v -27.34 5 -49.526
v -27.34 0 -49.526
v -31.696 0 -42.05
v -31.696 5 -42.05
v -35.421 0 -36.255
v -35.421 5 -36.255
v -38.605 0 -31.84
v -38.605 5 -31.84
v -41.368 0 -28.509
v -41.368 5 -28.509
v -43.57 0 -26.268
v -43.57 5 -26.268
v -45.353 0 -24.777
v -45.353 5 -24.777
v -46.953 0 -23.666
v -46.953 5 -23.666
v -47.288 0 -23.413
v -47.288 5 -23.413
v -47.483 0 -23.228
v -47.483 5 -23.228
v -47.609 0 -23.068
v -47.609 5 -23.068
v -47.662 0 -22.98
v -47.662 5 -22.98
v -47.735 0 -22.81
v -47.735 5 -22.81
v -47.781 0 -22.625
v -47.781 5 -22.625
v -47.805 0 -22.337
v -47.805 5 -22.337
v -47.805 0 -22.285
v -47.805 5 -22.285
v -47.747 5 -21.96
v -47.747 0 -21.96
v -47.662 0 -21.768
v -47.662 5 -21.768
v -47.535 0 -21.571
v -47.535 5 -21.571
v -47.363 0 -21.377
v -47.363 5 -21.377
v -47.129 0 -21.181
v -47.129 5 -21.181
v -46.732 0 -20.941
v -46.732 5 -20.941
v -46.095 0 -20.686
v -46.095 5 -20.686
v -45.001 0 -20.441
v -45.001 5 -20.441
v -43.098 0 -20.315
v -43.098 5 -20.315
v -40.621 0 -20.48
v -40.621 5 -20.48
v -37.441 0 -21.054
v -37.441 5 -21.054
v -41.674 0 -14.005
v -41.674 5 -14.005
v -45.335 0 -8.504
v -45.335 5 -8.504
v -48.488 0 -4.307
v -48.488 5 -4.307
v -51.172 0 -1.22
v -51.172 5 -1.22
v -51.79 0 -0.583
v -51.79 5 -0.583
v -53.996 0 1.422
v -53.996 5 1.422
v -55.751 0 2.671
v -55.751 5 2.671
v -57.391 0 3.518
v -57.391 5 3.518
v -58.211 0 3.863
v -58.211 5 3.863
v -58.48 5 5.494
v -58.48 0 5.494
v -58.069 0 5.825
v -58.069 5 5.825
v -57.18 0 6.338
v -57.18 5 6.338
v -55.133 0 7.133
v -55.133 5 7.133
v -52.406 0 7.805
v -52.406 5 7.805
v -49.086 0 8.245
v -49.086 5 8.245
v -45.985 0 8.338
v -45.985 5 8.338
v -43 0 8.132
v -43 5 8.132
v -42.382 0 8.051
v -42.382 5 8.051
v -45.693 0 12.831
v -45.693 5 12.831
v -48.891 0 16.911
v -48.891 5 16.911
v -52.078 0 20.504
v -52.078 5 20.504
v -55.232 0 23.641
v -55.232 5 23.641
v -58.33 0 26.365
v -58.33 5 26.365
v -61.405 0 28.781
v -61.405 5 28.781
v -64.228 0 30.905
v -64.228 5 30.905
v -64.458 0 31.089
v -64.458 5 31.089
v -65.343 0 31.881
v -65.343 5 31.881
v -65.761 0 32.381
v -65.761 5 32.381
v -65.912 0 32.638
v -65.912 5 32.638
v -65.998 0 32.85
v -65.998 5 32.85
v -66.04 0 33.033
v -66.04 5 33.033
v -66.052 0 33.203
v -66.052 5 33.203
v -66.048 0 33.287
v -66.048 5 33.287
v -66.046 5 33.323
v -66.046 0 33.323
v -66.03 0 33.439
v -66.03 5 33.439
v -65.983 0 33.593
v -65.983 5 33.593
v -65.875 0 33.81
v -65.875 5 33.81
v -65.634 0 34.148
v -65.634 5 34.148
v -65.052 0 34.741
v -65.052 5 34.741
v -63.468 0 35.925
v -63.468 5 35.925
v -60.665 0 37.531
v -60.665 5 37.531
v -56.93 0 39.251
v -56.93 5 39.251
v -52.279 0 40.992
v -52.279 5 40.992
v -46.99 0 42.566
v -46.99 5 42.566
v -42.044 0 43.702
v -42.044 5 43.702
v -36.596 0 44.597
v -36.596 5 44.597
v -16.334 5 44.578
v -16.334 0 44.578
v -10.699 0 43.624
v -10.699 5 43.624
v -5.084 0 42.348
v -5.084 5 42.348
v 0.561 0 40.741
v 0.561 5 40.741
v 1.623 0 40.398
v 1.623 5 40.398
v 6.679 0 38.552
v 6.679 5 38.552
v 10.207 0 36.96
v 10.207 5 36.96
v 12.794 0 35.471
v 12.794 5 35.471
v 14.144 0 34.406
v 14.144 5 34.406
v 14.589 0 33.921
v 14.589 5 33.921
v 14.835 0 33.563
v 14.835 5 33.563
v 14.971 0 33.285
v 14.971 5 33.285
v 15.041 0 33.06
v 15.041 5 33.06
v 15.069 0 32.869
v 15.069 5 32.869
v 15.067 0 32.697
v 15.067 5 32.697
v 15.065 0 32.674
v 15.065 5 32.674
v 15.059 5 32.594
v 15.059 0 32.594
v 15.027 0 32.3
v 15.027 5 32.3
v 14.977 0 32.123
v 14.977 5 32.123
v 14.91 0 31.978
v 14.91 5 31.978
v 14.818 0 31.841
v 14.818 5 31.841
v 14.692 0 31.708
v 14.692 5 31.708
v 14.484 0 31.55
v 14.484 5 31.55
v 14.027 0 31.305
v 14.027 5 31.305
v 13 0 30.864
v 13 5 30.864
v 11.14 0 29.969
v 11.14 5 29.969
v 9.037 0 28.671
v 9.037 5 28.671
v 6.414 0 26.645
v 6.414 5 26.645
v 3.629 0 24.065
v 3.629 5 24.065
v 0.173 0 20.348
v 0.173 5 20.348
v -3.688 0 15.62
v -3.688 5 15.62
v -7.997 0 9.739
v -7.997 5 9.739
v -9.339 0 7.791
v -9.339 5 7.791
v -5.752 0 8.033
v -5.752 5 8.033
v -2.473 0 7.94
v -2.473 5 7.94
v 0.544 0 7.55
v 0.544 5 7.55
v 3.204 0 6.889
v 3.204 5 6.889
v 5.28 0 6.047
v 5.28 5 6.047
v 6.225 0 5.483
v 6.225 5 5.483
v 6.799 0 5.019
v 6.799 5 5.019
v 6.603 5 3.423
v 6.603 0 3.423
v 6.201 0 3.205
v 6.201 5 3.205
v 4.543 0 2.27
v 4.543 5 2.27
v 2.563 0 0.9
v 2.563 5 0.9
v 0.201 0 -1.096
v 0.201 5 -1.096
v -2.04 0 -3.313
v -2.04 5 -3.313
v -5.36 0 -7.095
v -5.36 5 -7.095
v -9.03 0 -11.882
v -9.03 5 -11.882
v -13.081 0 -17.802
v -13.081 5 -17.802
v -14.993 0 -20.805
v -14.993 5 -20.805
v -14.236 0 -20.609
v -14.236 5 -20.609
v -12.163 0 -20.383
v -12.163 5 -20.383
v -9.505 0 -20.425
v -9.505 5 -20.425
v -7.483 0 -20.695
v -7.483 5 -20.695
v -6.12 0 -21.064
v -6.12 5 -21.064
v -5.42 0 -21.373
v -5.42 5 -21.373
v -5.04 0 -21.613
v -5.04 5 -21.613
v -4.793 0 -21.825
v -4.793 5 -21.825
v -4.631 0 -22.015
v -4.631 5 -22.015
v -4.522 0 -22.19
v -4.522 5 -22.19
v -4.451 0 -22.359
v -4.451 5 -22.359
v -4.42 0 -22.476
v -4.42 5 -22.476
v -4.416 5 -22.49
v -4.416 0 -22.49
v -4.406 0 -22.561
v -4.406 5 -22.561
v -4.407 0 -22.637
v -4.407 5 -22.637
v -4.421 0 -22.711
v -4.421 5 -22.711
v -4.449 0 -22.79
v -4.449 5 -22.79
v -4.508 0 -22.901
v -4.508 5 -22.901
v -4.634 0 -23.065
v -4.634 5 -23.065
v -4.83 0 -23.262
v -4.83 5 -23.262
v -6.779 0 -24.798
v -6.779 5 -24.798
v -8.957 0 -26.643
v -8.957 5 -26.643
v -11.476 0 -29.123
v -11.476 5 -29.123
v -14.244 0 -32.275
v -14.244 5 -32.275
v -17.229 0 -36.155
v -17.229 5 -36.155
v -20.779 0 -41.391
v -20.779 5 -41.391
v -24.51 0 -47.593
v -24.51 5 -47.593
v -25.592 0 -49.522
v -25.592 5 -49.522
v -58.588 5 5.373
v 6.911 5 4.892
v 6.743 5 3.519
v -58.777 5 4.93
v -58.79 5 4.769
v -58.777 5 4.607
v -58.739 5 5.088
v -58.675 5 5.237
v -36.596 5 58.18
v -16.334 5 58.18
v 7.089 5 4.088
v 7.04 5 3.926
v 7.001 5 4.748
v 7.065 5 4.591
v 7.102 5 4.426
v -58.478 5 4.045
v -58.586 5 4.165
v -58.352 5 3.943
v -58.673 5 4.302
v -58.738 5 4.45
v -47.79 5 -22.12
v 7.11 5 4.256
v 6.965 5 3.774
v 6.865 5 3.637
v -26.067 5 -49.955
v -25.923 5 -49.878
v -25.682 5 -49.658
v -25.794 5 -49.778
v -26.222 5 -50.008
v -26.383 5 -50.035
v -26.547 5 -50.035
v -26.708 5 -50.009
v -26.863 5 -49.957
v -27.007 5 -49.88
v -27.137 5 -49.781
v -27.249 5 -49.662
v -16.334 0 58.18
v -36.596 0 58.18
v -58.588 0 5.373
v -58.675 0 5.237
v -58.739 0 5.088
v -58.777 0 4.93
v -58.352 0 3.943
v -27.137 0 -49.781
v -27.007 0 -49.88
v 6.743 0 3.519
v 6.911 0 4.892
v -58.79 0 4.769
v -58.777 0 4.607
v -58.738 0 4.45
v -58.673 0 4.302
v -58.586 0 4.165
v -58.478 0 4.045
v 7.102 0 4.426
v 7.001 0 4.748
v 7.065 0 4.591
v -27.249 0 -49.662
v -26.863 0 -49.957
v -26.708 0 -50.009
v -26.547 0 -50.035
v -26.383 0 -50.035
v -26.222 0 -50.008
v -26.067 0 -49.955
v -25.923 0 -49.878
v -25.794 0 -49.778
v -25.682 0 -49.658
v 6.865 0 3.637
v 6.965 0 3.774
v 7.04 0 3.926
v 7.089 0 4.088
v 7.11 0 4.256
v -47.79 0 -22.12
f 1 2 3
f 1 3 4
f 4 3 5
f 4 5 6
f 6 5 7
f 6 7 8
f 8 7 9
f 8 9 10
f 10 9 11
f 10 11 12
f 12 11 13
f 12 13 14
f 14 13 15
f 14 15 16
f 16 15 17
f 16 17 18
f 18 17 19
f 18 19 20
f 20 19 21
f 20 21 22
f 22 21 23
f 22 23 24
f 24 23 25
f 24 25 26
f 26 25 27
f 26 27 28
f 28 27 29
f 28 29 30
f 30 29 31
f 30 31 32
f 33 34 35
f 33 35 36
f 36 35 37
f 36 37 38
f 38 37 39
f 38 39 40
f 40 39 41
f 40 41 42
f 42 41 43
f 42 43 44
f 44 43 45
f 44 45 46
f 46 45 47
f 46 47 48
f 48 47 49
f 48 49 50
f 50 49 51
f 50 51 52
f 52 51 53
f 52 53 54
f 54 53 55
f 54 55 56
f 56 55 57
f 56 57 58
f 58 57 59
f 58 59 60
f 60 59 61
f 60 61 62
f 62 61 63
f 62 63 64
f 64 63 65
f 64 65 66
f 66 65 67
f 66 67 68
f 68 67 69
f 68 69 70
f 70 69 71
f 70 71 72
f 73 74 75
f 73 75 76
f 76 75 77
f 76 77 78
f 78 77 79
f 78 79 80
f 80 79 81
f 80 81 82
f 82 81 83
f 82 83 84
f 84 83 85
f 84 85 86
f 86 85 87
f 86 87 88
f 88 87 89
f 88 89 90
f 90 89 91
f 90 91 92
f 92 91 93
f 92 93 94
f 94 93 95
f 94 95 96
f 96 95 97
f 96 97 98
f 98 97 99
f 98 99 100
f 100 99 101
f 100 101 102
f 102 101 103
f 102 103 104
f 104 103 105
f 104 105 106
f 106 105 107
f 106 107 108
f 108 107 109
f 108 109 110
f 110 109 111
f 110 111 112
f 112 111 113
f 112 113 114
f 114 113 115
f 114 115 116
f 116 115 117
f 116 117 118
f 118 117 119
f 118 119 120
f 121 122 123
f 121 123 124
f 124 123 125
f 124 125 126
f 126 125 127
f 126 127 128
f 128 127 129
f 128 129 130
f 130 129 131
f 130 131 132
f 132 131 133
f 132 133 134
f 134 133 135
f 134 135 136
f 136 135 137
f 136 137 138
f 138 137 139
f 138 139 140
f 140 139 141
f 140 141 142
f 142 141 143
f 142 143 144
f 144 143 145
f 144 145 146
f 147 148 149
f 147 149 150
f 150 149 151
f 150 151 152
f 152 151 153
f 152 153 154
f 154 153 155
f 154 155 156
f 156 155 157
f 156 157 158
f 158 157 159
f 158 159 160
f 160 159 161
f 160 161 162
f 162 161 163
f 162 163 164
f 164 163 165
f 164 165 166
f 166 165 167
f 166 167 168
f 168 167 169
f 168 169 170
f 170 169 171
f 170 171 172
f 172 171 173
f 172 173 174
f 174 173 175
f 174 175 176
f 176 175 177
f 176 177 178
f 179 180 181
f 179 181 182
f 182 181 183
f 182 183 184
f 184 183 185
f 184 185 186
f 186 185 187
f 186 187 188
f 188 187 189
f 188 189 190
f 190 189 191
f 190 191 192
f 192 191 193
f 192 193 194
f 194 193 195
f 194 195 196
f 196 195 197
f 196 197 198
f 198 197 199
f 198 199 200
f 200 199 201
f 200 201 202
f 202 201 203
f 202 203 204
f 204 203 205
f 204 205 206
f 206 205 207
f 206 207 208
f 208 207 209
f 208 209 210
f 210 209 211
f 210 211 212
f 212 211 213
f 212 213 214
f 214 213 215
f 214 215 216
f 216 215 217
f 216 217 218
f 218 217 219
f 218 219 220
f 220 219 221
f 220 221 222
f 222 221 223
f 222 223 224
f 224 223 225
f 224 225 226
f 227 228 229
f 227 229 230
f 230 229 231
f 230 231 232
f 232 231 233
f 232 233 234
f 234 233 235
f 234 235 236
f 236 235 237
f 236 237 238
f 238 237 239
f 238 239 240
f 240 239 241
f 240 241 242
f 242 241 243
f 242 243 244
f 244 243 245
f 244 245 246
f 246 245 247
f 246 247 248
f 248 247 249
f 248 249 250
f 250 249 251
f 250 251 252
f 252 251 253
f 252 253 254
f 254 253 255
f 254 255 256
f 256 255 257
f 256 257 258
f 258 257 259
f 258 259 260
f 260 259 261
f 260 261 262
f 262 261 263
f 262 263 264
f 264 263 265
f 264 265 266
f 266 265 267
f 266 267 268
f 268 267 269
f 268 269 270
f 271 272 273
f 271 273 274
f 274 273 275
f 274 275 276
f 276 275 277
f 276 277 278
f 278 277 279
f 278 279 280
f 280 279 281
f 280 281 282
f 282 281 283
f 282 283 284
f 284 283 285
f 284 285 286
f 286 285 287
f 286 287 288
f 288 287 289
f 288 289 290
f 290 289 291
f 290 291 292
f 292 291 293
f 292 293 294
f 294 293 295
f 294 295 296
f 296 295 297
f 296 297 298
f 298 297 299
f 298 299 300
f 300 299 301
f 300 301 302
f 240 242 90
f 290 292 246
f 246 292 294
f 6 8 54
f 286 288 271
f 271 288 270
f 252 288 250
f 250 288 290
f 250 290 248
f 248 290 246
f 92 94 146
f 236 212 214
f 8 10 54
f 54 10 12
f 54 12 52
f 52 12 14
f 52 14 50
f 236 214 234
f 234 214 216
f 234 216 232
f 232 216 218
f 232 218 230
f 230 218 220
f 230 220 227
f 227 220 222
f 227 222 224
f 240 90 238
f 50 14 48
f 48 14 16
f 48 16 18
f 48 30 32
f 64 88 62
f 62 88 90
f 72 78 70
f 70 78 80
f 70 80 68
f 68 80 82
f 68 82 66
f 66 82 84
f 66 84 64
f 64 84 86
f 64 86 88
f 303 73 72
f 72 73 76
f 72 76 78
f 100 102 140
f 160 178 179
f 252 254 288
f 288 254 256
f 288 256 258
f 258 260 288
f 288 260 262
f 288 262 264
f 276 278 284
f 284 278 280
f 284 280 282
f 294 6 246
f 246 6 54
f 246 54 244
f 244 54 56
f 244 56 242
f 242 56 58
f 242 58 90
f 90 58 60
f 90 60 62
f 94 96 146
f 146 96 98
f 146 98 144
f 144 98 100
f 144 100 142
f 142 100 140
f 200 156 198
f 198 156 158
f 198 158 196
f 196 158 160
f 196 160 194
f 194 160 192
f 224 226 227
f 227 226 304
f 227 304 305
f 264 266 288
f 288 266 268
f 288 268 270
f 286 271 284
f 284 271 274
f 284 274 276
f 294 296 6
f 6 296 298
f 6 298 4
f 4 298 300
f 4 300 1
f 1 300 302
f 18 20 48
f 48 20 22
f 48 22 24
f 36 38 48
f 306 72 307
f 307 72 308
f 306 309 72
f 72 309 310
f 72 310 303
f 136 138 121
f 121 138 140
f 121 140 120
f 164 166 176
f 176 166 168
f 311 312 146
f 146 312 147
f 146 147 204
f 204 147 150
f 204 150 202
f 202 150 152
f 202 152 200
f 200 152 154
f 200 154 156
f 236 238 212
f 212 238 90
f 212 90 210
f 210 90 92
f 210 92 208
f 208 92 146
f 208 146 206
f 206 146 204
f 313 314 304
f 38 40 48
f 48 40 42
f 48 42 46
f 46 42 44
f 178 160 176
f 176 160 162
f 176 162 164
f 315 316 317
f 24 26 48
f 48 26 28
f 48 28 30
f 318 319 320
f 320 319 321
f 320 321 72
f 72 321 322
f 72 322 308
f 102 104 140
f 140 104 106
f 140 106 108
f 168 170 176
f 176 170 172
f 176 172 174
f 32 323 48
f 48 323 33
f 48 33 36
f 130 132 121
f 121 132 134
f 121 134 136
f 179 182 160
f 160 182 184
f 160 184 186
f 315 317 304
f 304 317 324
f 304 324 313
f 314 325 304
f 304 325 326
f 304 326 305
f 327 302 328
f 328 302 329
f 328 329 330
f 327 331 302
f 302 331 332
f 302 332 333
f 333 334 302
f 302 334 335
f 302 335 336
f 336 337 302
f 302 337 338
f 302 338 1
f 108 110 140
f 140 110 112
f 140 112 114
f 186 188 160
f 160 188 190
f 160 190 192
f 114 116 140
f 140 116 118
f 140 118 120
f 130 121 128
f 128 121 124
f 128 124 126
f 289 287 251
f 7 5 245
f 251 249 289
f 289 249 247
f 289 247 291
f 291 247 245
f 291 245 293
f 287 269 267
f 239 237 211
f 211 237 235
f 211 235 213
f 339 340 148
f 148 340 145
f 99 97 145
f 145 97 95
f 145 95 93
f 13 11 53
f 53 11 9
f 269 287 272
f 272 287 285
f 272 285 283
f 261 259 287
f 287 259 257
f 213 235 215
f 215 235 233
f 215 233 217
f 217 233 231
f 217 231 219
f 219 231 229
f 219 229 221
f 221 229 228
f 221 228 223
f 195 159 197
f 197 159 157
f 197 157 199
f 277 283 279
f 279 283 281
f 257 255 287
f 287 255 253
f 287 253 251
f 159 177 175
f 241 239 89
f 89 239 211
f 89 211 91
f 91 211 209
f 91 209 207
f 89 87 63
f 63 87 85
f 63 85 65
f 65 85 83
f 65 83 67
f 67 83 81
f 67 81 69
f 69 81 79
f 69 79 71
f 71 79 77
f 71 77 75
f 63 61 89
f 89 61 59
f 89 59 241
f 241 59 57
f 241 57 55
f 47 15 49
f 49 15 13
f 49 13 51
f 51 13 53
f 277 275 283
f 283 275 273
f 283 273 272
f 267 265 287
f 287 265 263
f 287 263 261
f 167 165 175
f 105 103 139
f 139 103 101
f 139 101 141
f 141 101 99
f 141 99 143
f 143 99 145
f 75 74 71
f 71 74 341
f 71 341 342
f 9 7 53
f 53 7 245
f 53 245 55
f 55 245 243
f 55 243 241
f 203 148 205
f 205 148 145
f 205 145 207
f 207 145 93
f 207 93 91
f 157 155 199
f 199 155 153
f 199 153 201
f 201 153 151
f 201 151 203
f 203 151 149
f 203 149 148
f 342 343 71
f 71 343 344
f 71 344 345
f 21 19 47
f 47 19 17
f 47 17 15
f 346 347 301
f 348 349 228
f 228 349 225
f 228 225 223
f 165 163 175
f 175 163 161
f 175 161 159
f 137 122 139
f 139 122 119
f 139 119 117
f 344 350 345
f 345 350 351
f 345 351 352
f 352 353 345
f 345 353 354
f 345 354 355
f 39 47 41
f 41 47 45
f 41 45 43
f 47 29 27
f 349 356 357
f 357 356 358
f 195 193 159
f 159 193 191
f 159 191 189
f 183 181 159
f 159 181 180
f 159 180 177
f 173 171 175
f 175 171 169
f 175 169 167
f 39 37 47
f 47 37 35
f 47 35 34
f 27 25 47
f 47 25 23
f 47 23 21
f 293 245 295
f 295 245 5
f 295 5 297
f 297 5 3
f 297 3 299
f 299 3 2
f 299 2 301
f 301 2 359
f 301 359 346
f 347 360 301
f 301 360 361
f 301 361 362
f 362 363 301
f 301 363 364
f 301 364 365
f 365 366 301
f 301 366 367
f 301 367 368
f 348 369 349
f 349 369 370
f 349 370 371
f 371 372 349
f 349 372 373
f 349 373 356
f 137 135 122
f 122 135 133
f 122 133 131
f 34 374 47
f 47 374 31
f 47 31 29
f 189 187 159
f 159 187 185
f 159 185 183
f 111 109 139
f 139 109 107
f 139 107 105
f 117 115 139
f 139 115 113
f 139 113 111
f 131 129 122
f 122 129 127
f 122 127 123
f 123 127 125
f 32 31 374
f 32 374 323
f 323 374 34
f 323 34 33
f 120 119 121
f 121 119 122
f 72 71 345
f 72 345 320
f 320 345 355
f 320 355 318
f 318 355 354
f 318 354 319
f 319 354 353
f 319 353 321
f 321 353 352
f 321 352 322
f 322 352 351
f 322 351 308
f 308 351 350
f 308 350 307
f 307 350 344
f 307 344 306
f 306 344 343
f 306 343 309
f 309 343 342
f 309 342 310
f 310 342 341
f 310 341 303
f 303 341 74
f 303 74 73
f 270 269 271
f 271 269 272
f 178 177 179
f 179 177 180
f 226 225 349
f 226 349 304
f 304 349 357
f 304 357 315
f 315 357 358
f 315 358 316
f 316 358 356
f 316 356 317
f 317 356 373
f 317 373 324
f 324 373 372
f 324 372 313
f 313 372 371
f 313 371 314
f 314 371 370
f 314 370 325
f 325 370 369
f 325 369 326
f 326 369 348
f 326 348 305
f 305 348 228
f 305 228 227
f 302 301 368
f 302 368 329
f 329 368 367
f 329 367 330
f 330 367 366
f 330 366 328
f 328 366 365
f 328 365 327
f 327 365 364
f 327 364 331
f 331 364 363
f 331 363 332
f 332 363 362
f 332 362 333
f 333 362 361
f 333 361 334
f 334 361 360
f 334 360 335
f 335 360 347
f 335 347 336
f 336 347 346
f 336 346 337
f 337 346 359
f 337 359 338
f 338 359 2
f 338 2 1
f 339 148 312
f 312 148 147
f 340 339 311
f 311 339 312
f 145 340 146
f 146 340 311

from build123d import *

# Parameters (mm, degrees)
BOSS_EXTRUDE1_DEPTH = 5
FILLET1_R           = 10
FILLET2_START       = -1
FILLET2_DEPTH       = 7
FILLET2_2_DEPTH     = 5
FILLET3_R           = 1
BOSS_EXTRUDE2_DEPTH = 5


with BuildPart() as part:
    # Sketch2 → Boss-Extrude1 (new body)
    with BuildSketch(Plane(origin=(0, 0, 0), x_dir=(1, 0, 0), z_dir=(0, 1, 0))):
        with BuildLine():
            add(Edge.make_bspline(
                [(-26.460947075, 51.114211153), (-12.427548014, 25.108493293), (-4.028423797, 24.103183764), (-4.41793616, 22.483556797)],
                knots=[0, 0, 0, 0, 1, 1, 1, 1], degree=3))
            add(Edge.make_bspline(
                [(-4.41793616, 22.483556797), (-4.887213543, 20.187029491), (-12.597975929, 19.976462624), (-14.992954401, 20.804801043)],
                knots=[0, 0, 0, 0, 1, 1, 1, 1], degree=3))
            add(Edge.make_bspline(
                [(-14.992954401, 20.804801043), (1.787270351, -6.103899351), (8.22123179, -2.127672237), (7.172892256, -4.601264311)],
                knots=[0, 0, 0, 0, 1, 1, 1, 1], degree=3))
            add(Edge.make_bspline(
                [(7.172892256, -4.601264311), (5.638367492, -6.681504252), (-0.799609665, -8.768183654), (-9.338641476, -7.791193384)],
                knots=[0, 0, 0, 0, 1, 1, 1, 1], degree=3))
            add(Edge.make_bspline(
                [(-9.338641476, -7.791193384), (8.962790554, -34.701758749), (15.02254586, -29.475085195), (15.060000948, -32.637388979)],
                knots=[0, 0, 0, 0, 1, 1, 1, 1], degree=3))
            add(Edge.make_bspline(
                [(-26.460947075, -45.261592135), (-9.676835521, -45.586760912), (15.687111692, -36.861745266), (15.060000948, -32.637388979)],
                knots=[0, 0, 0, 0, 1, 1, 1, 1], degree=3))
            add(Edge.make_bspline(
                [(-66.046301456, -33.30600061), (-65.977623625, -36.050325123), (-47.681674197, -45.288435387), (-26.460947075, -45.261592135)],
                knots=[0, 0, 0, 0, 1, 1, 1, 1], degree=3))
            add(Edge.make_bspline(
                [(-42.38194966, -8.050912304), (-55.265743099, -27.835283819), (-66.345571411, -30.483595462), (-66.046301456, -33.30600061)],
                knots=[0, 0, 0, 0, 1, 1, 1, 1], degree=3))
            add(Edge.make_bspline(
                [(-58.896340189, -4.69945124), (-59.030645987, -6.480678116), (-50.779962761, -9.251788646), (-42.38194966, -8.050912304)],
                knots=[0, 0, 0, 0, 1, 1, 1, 1], degree=3))
            add(Edge.make_bspline(
                [(-37.440614, 21.054048916), (-53.746480623, -7.348370101), (-58.646356675, -2.305720166), (-58.896340189, -4.69945124)],
                knots=[0, 0, 0, 0, 1, 1, 1, 1], degree=3))
            add(Edge.make_bspline(
                [(-47.800827469, 22.154310098), (-47.410404752, 20.188415441), (-42.93978555, 19.761395244), (-37.440614, 21.054048916)],
                knots=[0, 0, 0, 0, 1, 1, 1, 1], degree=3))
            add(Edge.make_bspline(
                [(-26.460947075, 51.114211153), (-43.28906286, 20.482524417), (-47.971844347, 25.301823121), (-47.800827469, 22.154310098)],
                knots=[0, 0, 0, 0, 1, 1, 1, 1], degree=3))
        make_face()
    extrude(amount=BOSS_EXTRUDE1_DEPTH)

    # Fillet1
    # the kernel refuses this fillet: 10 mm, written as the material it adds along each edge
    with BuildSketch(Plane(origin=(-26.460947075, 0, 45.261592135), x_dir=(0.9998301014874635, 0, 0.018432801186160547), z_dir=(0, 1, 0))) as fillet1_piece_1:
        with BuildLine():
            CenterArc((0.095571826, -9.99999563), FILLET1_R, 90.053566795, 1.005062424)
            ThreePointArc((-0.089183316, -0.001702498), (-0.044591398, -0.000864875), (0, 0))
            ThreePointArc((0, 0), (0.043111329, -2.0179e-05), (0.086222658, 0))
        make_face()
    extrude(amount=5)

    # Fillet2: read off the stored shape, not the designer's step
    # Fillet2 outline → Fillet2 (cut)
    with BuildSketch(Plane(origin=(0, 0, 0), x_dir=(1, 0, 0), z_dir=(0, 1, 0)).offset(FILLET2_START)):
        with BuildLine():
            add(Edge.make_bspline(
                [(-47.800827469, 22.154310098), (-47.787582934, 22.087619919), (-47.769642872, 22.022700691), (-47.747126417, 21.959559472)],
                knots=[0, 0, 0, 0, 0.033923577, 0.033923577, 0.033923577, 0.033923577], degree=3))
            ThreePointArc((-47.747126417, 21.959559472), (-47.789706131, 22.119961107), (-47.805171518, 22.285195905))
            add(Edge.make_bspline(
                [(-47.805171518, 22.285195905), (-47.80474027, 22.243126607), (-47.803285041, 22.199540953), (-47.800827469, 22.154310098)],
                knots=[0.985629653, 0.985629653, 0.985629653, 0.985629653, 1, 1, 1, 1], degree=3))
        make_face()
        with BuildLine():
            ThreePointArc((-58.480285024, -5.49409461), (-58.77681304, -4.607482629), (-58.211007375, -3.86325577))
            add(Edge.make_bspline(
                [(-58.211007375, -3.86325577), (-58.63585352, -4.060348609), (-58.849105033, -4.247148374), (-58.896340189, -4.69945124)],
                knots=[0.811046917, 0.811046917, 0.811046917, 0.811046917, 1, 1, 1, 1], degree=3))
            add(Edge.make_bspline(
                [(-58.896340189, -4.69945124), (-58.915187245, -4.949409799), (-58.768914163, -5.218861494), (-58.480285024, -5.49409461)],
                knots=[0, 0, 0, 0, 0.140329434, 0.140329434, 0.140329434, 0.140329434], degree=3))
        make_face()
        with BuildLine():
            ThreePointArc((6.603041154, -3.423142366), (7.103155792, -4.171777978), (6.798725932, -5.019063284))
            add(Edge.make_bspline(
                [(6.798725932, -5.019063284), (6.944949461, -4.880385824), (7.069953552, -4.740810579), (7.172892256, -4.601264311)],
                knots=[0.932918187, 0.932918187, 0.932918187, 0.932918187, 1, 1, 1, 1], degree=3))
            add(Edge.make_bspline(
                [(7.172892256, -4.601264311), (7.423474277, -4.01000768), (7.246561276, -3.787256085), (6.603041154, -3.423142366)],
                knots=[0, 0, 0, 0, 0.239027541, 0.239027541, 0.239027541, 0.239027541], degree=3))
        make_face()
    extrude(amount=FILLET2_DEPTH, mode=Mode.SUBTRACT)

    # Fillet2 2 outline → Fillet2 2 (add)
    with BuildSketch(Plane(origin=(0, 0, 0), x_dir=(1, 0, 0), z_dir=(0, 1, 0))):
        with BuildLine():
            add(Edge.make_bspline(
                [(-66.048164843, -33.286769384), (-66.047602355, -33.29317903), (-66.046981263, -33.299589371), (-66.046301456, -33.30600061)],
                knots=[0.997728448, 0.997728448, 0.997728448, 0.997728448, 1, 1, 1, 1], degree=3))
            ThreePointArc((-66.048164843, -33.286769384), (-66.04674894, -33.304768154), (-66.045658211, -33.322789552))
            add(Edge.make_bspline(
                [(-66.046301456, -33.30600061), (-66.046162074, -33.311570221), (-66.045947617, -33.317166579), (-66.045658211, -33.322789552)],
                knots=[0, 0, 0, 0, 0.002029502, 0.002029502, 0.002029502, 0.002029502], degree=3))
        make_face()
        with BuildLine():
            add(Edge.make_bspline(
                [(15.064825863, -32.674467974), (15.063438106, -32.662070244), (15.061830087, -32.649710467), (15.060000948, -32.637388979)],
                knots=[0.997083227, 0.997083227, 0.997083227, 0.997083227, 1, 1, 1, 1], degree=3))
            ThreePointArc((15.064825863, -32.674467974), (15.061134508, -32.634107801), (15.059081591, -32.593631201))
            add(Edge.make_bspline(
                [(15.060000948, -32.637388979), (15.059826038, -32.622621486), (15.059519797, -32.608036936), (15.059081591, -32.593631201)],
                knots=[0, 0, 0, 0, 0.004669853, 0.004669853, 0.004669853, 0.004669853], degree=3))
        make_face()
    extrude(amount=FILLET2_2_DEPTH)

    # Fillet3
    fillet3_edges = [part.edges().sort_by_distance(p)[0] for p in [
        (-26.460947075, 2.5, -51.114211153),
    ]]
    fillet(fillet3_edges, radius=FILLET3_R)

    # Sketch3 → Boss-Extrude2 (add)
    with BuildSketch(Plane(origin=(0, 5, 0), x_dir=(1, 0, 0), z_dir=(0, 1, 0))):
        Polygon((-36.595543758, -44.59706636), (-36.595543758, -58.179607966), (-16.334320806, -58.179607966), (-16.334320806, -44.578133049), align=None)
    extrude(amount=-BOSS_EXTRUDE2_DEPTH)


solid = part.part
